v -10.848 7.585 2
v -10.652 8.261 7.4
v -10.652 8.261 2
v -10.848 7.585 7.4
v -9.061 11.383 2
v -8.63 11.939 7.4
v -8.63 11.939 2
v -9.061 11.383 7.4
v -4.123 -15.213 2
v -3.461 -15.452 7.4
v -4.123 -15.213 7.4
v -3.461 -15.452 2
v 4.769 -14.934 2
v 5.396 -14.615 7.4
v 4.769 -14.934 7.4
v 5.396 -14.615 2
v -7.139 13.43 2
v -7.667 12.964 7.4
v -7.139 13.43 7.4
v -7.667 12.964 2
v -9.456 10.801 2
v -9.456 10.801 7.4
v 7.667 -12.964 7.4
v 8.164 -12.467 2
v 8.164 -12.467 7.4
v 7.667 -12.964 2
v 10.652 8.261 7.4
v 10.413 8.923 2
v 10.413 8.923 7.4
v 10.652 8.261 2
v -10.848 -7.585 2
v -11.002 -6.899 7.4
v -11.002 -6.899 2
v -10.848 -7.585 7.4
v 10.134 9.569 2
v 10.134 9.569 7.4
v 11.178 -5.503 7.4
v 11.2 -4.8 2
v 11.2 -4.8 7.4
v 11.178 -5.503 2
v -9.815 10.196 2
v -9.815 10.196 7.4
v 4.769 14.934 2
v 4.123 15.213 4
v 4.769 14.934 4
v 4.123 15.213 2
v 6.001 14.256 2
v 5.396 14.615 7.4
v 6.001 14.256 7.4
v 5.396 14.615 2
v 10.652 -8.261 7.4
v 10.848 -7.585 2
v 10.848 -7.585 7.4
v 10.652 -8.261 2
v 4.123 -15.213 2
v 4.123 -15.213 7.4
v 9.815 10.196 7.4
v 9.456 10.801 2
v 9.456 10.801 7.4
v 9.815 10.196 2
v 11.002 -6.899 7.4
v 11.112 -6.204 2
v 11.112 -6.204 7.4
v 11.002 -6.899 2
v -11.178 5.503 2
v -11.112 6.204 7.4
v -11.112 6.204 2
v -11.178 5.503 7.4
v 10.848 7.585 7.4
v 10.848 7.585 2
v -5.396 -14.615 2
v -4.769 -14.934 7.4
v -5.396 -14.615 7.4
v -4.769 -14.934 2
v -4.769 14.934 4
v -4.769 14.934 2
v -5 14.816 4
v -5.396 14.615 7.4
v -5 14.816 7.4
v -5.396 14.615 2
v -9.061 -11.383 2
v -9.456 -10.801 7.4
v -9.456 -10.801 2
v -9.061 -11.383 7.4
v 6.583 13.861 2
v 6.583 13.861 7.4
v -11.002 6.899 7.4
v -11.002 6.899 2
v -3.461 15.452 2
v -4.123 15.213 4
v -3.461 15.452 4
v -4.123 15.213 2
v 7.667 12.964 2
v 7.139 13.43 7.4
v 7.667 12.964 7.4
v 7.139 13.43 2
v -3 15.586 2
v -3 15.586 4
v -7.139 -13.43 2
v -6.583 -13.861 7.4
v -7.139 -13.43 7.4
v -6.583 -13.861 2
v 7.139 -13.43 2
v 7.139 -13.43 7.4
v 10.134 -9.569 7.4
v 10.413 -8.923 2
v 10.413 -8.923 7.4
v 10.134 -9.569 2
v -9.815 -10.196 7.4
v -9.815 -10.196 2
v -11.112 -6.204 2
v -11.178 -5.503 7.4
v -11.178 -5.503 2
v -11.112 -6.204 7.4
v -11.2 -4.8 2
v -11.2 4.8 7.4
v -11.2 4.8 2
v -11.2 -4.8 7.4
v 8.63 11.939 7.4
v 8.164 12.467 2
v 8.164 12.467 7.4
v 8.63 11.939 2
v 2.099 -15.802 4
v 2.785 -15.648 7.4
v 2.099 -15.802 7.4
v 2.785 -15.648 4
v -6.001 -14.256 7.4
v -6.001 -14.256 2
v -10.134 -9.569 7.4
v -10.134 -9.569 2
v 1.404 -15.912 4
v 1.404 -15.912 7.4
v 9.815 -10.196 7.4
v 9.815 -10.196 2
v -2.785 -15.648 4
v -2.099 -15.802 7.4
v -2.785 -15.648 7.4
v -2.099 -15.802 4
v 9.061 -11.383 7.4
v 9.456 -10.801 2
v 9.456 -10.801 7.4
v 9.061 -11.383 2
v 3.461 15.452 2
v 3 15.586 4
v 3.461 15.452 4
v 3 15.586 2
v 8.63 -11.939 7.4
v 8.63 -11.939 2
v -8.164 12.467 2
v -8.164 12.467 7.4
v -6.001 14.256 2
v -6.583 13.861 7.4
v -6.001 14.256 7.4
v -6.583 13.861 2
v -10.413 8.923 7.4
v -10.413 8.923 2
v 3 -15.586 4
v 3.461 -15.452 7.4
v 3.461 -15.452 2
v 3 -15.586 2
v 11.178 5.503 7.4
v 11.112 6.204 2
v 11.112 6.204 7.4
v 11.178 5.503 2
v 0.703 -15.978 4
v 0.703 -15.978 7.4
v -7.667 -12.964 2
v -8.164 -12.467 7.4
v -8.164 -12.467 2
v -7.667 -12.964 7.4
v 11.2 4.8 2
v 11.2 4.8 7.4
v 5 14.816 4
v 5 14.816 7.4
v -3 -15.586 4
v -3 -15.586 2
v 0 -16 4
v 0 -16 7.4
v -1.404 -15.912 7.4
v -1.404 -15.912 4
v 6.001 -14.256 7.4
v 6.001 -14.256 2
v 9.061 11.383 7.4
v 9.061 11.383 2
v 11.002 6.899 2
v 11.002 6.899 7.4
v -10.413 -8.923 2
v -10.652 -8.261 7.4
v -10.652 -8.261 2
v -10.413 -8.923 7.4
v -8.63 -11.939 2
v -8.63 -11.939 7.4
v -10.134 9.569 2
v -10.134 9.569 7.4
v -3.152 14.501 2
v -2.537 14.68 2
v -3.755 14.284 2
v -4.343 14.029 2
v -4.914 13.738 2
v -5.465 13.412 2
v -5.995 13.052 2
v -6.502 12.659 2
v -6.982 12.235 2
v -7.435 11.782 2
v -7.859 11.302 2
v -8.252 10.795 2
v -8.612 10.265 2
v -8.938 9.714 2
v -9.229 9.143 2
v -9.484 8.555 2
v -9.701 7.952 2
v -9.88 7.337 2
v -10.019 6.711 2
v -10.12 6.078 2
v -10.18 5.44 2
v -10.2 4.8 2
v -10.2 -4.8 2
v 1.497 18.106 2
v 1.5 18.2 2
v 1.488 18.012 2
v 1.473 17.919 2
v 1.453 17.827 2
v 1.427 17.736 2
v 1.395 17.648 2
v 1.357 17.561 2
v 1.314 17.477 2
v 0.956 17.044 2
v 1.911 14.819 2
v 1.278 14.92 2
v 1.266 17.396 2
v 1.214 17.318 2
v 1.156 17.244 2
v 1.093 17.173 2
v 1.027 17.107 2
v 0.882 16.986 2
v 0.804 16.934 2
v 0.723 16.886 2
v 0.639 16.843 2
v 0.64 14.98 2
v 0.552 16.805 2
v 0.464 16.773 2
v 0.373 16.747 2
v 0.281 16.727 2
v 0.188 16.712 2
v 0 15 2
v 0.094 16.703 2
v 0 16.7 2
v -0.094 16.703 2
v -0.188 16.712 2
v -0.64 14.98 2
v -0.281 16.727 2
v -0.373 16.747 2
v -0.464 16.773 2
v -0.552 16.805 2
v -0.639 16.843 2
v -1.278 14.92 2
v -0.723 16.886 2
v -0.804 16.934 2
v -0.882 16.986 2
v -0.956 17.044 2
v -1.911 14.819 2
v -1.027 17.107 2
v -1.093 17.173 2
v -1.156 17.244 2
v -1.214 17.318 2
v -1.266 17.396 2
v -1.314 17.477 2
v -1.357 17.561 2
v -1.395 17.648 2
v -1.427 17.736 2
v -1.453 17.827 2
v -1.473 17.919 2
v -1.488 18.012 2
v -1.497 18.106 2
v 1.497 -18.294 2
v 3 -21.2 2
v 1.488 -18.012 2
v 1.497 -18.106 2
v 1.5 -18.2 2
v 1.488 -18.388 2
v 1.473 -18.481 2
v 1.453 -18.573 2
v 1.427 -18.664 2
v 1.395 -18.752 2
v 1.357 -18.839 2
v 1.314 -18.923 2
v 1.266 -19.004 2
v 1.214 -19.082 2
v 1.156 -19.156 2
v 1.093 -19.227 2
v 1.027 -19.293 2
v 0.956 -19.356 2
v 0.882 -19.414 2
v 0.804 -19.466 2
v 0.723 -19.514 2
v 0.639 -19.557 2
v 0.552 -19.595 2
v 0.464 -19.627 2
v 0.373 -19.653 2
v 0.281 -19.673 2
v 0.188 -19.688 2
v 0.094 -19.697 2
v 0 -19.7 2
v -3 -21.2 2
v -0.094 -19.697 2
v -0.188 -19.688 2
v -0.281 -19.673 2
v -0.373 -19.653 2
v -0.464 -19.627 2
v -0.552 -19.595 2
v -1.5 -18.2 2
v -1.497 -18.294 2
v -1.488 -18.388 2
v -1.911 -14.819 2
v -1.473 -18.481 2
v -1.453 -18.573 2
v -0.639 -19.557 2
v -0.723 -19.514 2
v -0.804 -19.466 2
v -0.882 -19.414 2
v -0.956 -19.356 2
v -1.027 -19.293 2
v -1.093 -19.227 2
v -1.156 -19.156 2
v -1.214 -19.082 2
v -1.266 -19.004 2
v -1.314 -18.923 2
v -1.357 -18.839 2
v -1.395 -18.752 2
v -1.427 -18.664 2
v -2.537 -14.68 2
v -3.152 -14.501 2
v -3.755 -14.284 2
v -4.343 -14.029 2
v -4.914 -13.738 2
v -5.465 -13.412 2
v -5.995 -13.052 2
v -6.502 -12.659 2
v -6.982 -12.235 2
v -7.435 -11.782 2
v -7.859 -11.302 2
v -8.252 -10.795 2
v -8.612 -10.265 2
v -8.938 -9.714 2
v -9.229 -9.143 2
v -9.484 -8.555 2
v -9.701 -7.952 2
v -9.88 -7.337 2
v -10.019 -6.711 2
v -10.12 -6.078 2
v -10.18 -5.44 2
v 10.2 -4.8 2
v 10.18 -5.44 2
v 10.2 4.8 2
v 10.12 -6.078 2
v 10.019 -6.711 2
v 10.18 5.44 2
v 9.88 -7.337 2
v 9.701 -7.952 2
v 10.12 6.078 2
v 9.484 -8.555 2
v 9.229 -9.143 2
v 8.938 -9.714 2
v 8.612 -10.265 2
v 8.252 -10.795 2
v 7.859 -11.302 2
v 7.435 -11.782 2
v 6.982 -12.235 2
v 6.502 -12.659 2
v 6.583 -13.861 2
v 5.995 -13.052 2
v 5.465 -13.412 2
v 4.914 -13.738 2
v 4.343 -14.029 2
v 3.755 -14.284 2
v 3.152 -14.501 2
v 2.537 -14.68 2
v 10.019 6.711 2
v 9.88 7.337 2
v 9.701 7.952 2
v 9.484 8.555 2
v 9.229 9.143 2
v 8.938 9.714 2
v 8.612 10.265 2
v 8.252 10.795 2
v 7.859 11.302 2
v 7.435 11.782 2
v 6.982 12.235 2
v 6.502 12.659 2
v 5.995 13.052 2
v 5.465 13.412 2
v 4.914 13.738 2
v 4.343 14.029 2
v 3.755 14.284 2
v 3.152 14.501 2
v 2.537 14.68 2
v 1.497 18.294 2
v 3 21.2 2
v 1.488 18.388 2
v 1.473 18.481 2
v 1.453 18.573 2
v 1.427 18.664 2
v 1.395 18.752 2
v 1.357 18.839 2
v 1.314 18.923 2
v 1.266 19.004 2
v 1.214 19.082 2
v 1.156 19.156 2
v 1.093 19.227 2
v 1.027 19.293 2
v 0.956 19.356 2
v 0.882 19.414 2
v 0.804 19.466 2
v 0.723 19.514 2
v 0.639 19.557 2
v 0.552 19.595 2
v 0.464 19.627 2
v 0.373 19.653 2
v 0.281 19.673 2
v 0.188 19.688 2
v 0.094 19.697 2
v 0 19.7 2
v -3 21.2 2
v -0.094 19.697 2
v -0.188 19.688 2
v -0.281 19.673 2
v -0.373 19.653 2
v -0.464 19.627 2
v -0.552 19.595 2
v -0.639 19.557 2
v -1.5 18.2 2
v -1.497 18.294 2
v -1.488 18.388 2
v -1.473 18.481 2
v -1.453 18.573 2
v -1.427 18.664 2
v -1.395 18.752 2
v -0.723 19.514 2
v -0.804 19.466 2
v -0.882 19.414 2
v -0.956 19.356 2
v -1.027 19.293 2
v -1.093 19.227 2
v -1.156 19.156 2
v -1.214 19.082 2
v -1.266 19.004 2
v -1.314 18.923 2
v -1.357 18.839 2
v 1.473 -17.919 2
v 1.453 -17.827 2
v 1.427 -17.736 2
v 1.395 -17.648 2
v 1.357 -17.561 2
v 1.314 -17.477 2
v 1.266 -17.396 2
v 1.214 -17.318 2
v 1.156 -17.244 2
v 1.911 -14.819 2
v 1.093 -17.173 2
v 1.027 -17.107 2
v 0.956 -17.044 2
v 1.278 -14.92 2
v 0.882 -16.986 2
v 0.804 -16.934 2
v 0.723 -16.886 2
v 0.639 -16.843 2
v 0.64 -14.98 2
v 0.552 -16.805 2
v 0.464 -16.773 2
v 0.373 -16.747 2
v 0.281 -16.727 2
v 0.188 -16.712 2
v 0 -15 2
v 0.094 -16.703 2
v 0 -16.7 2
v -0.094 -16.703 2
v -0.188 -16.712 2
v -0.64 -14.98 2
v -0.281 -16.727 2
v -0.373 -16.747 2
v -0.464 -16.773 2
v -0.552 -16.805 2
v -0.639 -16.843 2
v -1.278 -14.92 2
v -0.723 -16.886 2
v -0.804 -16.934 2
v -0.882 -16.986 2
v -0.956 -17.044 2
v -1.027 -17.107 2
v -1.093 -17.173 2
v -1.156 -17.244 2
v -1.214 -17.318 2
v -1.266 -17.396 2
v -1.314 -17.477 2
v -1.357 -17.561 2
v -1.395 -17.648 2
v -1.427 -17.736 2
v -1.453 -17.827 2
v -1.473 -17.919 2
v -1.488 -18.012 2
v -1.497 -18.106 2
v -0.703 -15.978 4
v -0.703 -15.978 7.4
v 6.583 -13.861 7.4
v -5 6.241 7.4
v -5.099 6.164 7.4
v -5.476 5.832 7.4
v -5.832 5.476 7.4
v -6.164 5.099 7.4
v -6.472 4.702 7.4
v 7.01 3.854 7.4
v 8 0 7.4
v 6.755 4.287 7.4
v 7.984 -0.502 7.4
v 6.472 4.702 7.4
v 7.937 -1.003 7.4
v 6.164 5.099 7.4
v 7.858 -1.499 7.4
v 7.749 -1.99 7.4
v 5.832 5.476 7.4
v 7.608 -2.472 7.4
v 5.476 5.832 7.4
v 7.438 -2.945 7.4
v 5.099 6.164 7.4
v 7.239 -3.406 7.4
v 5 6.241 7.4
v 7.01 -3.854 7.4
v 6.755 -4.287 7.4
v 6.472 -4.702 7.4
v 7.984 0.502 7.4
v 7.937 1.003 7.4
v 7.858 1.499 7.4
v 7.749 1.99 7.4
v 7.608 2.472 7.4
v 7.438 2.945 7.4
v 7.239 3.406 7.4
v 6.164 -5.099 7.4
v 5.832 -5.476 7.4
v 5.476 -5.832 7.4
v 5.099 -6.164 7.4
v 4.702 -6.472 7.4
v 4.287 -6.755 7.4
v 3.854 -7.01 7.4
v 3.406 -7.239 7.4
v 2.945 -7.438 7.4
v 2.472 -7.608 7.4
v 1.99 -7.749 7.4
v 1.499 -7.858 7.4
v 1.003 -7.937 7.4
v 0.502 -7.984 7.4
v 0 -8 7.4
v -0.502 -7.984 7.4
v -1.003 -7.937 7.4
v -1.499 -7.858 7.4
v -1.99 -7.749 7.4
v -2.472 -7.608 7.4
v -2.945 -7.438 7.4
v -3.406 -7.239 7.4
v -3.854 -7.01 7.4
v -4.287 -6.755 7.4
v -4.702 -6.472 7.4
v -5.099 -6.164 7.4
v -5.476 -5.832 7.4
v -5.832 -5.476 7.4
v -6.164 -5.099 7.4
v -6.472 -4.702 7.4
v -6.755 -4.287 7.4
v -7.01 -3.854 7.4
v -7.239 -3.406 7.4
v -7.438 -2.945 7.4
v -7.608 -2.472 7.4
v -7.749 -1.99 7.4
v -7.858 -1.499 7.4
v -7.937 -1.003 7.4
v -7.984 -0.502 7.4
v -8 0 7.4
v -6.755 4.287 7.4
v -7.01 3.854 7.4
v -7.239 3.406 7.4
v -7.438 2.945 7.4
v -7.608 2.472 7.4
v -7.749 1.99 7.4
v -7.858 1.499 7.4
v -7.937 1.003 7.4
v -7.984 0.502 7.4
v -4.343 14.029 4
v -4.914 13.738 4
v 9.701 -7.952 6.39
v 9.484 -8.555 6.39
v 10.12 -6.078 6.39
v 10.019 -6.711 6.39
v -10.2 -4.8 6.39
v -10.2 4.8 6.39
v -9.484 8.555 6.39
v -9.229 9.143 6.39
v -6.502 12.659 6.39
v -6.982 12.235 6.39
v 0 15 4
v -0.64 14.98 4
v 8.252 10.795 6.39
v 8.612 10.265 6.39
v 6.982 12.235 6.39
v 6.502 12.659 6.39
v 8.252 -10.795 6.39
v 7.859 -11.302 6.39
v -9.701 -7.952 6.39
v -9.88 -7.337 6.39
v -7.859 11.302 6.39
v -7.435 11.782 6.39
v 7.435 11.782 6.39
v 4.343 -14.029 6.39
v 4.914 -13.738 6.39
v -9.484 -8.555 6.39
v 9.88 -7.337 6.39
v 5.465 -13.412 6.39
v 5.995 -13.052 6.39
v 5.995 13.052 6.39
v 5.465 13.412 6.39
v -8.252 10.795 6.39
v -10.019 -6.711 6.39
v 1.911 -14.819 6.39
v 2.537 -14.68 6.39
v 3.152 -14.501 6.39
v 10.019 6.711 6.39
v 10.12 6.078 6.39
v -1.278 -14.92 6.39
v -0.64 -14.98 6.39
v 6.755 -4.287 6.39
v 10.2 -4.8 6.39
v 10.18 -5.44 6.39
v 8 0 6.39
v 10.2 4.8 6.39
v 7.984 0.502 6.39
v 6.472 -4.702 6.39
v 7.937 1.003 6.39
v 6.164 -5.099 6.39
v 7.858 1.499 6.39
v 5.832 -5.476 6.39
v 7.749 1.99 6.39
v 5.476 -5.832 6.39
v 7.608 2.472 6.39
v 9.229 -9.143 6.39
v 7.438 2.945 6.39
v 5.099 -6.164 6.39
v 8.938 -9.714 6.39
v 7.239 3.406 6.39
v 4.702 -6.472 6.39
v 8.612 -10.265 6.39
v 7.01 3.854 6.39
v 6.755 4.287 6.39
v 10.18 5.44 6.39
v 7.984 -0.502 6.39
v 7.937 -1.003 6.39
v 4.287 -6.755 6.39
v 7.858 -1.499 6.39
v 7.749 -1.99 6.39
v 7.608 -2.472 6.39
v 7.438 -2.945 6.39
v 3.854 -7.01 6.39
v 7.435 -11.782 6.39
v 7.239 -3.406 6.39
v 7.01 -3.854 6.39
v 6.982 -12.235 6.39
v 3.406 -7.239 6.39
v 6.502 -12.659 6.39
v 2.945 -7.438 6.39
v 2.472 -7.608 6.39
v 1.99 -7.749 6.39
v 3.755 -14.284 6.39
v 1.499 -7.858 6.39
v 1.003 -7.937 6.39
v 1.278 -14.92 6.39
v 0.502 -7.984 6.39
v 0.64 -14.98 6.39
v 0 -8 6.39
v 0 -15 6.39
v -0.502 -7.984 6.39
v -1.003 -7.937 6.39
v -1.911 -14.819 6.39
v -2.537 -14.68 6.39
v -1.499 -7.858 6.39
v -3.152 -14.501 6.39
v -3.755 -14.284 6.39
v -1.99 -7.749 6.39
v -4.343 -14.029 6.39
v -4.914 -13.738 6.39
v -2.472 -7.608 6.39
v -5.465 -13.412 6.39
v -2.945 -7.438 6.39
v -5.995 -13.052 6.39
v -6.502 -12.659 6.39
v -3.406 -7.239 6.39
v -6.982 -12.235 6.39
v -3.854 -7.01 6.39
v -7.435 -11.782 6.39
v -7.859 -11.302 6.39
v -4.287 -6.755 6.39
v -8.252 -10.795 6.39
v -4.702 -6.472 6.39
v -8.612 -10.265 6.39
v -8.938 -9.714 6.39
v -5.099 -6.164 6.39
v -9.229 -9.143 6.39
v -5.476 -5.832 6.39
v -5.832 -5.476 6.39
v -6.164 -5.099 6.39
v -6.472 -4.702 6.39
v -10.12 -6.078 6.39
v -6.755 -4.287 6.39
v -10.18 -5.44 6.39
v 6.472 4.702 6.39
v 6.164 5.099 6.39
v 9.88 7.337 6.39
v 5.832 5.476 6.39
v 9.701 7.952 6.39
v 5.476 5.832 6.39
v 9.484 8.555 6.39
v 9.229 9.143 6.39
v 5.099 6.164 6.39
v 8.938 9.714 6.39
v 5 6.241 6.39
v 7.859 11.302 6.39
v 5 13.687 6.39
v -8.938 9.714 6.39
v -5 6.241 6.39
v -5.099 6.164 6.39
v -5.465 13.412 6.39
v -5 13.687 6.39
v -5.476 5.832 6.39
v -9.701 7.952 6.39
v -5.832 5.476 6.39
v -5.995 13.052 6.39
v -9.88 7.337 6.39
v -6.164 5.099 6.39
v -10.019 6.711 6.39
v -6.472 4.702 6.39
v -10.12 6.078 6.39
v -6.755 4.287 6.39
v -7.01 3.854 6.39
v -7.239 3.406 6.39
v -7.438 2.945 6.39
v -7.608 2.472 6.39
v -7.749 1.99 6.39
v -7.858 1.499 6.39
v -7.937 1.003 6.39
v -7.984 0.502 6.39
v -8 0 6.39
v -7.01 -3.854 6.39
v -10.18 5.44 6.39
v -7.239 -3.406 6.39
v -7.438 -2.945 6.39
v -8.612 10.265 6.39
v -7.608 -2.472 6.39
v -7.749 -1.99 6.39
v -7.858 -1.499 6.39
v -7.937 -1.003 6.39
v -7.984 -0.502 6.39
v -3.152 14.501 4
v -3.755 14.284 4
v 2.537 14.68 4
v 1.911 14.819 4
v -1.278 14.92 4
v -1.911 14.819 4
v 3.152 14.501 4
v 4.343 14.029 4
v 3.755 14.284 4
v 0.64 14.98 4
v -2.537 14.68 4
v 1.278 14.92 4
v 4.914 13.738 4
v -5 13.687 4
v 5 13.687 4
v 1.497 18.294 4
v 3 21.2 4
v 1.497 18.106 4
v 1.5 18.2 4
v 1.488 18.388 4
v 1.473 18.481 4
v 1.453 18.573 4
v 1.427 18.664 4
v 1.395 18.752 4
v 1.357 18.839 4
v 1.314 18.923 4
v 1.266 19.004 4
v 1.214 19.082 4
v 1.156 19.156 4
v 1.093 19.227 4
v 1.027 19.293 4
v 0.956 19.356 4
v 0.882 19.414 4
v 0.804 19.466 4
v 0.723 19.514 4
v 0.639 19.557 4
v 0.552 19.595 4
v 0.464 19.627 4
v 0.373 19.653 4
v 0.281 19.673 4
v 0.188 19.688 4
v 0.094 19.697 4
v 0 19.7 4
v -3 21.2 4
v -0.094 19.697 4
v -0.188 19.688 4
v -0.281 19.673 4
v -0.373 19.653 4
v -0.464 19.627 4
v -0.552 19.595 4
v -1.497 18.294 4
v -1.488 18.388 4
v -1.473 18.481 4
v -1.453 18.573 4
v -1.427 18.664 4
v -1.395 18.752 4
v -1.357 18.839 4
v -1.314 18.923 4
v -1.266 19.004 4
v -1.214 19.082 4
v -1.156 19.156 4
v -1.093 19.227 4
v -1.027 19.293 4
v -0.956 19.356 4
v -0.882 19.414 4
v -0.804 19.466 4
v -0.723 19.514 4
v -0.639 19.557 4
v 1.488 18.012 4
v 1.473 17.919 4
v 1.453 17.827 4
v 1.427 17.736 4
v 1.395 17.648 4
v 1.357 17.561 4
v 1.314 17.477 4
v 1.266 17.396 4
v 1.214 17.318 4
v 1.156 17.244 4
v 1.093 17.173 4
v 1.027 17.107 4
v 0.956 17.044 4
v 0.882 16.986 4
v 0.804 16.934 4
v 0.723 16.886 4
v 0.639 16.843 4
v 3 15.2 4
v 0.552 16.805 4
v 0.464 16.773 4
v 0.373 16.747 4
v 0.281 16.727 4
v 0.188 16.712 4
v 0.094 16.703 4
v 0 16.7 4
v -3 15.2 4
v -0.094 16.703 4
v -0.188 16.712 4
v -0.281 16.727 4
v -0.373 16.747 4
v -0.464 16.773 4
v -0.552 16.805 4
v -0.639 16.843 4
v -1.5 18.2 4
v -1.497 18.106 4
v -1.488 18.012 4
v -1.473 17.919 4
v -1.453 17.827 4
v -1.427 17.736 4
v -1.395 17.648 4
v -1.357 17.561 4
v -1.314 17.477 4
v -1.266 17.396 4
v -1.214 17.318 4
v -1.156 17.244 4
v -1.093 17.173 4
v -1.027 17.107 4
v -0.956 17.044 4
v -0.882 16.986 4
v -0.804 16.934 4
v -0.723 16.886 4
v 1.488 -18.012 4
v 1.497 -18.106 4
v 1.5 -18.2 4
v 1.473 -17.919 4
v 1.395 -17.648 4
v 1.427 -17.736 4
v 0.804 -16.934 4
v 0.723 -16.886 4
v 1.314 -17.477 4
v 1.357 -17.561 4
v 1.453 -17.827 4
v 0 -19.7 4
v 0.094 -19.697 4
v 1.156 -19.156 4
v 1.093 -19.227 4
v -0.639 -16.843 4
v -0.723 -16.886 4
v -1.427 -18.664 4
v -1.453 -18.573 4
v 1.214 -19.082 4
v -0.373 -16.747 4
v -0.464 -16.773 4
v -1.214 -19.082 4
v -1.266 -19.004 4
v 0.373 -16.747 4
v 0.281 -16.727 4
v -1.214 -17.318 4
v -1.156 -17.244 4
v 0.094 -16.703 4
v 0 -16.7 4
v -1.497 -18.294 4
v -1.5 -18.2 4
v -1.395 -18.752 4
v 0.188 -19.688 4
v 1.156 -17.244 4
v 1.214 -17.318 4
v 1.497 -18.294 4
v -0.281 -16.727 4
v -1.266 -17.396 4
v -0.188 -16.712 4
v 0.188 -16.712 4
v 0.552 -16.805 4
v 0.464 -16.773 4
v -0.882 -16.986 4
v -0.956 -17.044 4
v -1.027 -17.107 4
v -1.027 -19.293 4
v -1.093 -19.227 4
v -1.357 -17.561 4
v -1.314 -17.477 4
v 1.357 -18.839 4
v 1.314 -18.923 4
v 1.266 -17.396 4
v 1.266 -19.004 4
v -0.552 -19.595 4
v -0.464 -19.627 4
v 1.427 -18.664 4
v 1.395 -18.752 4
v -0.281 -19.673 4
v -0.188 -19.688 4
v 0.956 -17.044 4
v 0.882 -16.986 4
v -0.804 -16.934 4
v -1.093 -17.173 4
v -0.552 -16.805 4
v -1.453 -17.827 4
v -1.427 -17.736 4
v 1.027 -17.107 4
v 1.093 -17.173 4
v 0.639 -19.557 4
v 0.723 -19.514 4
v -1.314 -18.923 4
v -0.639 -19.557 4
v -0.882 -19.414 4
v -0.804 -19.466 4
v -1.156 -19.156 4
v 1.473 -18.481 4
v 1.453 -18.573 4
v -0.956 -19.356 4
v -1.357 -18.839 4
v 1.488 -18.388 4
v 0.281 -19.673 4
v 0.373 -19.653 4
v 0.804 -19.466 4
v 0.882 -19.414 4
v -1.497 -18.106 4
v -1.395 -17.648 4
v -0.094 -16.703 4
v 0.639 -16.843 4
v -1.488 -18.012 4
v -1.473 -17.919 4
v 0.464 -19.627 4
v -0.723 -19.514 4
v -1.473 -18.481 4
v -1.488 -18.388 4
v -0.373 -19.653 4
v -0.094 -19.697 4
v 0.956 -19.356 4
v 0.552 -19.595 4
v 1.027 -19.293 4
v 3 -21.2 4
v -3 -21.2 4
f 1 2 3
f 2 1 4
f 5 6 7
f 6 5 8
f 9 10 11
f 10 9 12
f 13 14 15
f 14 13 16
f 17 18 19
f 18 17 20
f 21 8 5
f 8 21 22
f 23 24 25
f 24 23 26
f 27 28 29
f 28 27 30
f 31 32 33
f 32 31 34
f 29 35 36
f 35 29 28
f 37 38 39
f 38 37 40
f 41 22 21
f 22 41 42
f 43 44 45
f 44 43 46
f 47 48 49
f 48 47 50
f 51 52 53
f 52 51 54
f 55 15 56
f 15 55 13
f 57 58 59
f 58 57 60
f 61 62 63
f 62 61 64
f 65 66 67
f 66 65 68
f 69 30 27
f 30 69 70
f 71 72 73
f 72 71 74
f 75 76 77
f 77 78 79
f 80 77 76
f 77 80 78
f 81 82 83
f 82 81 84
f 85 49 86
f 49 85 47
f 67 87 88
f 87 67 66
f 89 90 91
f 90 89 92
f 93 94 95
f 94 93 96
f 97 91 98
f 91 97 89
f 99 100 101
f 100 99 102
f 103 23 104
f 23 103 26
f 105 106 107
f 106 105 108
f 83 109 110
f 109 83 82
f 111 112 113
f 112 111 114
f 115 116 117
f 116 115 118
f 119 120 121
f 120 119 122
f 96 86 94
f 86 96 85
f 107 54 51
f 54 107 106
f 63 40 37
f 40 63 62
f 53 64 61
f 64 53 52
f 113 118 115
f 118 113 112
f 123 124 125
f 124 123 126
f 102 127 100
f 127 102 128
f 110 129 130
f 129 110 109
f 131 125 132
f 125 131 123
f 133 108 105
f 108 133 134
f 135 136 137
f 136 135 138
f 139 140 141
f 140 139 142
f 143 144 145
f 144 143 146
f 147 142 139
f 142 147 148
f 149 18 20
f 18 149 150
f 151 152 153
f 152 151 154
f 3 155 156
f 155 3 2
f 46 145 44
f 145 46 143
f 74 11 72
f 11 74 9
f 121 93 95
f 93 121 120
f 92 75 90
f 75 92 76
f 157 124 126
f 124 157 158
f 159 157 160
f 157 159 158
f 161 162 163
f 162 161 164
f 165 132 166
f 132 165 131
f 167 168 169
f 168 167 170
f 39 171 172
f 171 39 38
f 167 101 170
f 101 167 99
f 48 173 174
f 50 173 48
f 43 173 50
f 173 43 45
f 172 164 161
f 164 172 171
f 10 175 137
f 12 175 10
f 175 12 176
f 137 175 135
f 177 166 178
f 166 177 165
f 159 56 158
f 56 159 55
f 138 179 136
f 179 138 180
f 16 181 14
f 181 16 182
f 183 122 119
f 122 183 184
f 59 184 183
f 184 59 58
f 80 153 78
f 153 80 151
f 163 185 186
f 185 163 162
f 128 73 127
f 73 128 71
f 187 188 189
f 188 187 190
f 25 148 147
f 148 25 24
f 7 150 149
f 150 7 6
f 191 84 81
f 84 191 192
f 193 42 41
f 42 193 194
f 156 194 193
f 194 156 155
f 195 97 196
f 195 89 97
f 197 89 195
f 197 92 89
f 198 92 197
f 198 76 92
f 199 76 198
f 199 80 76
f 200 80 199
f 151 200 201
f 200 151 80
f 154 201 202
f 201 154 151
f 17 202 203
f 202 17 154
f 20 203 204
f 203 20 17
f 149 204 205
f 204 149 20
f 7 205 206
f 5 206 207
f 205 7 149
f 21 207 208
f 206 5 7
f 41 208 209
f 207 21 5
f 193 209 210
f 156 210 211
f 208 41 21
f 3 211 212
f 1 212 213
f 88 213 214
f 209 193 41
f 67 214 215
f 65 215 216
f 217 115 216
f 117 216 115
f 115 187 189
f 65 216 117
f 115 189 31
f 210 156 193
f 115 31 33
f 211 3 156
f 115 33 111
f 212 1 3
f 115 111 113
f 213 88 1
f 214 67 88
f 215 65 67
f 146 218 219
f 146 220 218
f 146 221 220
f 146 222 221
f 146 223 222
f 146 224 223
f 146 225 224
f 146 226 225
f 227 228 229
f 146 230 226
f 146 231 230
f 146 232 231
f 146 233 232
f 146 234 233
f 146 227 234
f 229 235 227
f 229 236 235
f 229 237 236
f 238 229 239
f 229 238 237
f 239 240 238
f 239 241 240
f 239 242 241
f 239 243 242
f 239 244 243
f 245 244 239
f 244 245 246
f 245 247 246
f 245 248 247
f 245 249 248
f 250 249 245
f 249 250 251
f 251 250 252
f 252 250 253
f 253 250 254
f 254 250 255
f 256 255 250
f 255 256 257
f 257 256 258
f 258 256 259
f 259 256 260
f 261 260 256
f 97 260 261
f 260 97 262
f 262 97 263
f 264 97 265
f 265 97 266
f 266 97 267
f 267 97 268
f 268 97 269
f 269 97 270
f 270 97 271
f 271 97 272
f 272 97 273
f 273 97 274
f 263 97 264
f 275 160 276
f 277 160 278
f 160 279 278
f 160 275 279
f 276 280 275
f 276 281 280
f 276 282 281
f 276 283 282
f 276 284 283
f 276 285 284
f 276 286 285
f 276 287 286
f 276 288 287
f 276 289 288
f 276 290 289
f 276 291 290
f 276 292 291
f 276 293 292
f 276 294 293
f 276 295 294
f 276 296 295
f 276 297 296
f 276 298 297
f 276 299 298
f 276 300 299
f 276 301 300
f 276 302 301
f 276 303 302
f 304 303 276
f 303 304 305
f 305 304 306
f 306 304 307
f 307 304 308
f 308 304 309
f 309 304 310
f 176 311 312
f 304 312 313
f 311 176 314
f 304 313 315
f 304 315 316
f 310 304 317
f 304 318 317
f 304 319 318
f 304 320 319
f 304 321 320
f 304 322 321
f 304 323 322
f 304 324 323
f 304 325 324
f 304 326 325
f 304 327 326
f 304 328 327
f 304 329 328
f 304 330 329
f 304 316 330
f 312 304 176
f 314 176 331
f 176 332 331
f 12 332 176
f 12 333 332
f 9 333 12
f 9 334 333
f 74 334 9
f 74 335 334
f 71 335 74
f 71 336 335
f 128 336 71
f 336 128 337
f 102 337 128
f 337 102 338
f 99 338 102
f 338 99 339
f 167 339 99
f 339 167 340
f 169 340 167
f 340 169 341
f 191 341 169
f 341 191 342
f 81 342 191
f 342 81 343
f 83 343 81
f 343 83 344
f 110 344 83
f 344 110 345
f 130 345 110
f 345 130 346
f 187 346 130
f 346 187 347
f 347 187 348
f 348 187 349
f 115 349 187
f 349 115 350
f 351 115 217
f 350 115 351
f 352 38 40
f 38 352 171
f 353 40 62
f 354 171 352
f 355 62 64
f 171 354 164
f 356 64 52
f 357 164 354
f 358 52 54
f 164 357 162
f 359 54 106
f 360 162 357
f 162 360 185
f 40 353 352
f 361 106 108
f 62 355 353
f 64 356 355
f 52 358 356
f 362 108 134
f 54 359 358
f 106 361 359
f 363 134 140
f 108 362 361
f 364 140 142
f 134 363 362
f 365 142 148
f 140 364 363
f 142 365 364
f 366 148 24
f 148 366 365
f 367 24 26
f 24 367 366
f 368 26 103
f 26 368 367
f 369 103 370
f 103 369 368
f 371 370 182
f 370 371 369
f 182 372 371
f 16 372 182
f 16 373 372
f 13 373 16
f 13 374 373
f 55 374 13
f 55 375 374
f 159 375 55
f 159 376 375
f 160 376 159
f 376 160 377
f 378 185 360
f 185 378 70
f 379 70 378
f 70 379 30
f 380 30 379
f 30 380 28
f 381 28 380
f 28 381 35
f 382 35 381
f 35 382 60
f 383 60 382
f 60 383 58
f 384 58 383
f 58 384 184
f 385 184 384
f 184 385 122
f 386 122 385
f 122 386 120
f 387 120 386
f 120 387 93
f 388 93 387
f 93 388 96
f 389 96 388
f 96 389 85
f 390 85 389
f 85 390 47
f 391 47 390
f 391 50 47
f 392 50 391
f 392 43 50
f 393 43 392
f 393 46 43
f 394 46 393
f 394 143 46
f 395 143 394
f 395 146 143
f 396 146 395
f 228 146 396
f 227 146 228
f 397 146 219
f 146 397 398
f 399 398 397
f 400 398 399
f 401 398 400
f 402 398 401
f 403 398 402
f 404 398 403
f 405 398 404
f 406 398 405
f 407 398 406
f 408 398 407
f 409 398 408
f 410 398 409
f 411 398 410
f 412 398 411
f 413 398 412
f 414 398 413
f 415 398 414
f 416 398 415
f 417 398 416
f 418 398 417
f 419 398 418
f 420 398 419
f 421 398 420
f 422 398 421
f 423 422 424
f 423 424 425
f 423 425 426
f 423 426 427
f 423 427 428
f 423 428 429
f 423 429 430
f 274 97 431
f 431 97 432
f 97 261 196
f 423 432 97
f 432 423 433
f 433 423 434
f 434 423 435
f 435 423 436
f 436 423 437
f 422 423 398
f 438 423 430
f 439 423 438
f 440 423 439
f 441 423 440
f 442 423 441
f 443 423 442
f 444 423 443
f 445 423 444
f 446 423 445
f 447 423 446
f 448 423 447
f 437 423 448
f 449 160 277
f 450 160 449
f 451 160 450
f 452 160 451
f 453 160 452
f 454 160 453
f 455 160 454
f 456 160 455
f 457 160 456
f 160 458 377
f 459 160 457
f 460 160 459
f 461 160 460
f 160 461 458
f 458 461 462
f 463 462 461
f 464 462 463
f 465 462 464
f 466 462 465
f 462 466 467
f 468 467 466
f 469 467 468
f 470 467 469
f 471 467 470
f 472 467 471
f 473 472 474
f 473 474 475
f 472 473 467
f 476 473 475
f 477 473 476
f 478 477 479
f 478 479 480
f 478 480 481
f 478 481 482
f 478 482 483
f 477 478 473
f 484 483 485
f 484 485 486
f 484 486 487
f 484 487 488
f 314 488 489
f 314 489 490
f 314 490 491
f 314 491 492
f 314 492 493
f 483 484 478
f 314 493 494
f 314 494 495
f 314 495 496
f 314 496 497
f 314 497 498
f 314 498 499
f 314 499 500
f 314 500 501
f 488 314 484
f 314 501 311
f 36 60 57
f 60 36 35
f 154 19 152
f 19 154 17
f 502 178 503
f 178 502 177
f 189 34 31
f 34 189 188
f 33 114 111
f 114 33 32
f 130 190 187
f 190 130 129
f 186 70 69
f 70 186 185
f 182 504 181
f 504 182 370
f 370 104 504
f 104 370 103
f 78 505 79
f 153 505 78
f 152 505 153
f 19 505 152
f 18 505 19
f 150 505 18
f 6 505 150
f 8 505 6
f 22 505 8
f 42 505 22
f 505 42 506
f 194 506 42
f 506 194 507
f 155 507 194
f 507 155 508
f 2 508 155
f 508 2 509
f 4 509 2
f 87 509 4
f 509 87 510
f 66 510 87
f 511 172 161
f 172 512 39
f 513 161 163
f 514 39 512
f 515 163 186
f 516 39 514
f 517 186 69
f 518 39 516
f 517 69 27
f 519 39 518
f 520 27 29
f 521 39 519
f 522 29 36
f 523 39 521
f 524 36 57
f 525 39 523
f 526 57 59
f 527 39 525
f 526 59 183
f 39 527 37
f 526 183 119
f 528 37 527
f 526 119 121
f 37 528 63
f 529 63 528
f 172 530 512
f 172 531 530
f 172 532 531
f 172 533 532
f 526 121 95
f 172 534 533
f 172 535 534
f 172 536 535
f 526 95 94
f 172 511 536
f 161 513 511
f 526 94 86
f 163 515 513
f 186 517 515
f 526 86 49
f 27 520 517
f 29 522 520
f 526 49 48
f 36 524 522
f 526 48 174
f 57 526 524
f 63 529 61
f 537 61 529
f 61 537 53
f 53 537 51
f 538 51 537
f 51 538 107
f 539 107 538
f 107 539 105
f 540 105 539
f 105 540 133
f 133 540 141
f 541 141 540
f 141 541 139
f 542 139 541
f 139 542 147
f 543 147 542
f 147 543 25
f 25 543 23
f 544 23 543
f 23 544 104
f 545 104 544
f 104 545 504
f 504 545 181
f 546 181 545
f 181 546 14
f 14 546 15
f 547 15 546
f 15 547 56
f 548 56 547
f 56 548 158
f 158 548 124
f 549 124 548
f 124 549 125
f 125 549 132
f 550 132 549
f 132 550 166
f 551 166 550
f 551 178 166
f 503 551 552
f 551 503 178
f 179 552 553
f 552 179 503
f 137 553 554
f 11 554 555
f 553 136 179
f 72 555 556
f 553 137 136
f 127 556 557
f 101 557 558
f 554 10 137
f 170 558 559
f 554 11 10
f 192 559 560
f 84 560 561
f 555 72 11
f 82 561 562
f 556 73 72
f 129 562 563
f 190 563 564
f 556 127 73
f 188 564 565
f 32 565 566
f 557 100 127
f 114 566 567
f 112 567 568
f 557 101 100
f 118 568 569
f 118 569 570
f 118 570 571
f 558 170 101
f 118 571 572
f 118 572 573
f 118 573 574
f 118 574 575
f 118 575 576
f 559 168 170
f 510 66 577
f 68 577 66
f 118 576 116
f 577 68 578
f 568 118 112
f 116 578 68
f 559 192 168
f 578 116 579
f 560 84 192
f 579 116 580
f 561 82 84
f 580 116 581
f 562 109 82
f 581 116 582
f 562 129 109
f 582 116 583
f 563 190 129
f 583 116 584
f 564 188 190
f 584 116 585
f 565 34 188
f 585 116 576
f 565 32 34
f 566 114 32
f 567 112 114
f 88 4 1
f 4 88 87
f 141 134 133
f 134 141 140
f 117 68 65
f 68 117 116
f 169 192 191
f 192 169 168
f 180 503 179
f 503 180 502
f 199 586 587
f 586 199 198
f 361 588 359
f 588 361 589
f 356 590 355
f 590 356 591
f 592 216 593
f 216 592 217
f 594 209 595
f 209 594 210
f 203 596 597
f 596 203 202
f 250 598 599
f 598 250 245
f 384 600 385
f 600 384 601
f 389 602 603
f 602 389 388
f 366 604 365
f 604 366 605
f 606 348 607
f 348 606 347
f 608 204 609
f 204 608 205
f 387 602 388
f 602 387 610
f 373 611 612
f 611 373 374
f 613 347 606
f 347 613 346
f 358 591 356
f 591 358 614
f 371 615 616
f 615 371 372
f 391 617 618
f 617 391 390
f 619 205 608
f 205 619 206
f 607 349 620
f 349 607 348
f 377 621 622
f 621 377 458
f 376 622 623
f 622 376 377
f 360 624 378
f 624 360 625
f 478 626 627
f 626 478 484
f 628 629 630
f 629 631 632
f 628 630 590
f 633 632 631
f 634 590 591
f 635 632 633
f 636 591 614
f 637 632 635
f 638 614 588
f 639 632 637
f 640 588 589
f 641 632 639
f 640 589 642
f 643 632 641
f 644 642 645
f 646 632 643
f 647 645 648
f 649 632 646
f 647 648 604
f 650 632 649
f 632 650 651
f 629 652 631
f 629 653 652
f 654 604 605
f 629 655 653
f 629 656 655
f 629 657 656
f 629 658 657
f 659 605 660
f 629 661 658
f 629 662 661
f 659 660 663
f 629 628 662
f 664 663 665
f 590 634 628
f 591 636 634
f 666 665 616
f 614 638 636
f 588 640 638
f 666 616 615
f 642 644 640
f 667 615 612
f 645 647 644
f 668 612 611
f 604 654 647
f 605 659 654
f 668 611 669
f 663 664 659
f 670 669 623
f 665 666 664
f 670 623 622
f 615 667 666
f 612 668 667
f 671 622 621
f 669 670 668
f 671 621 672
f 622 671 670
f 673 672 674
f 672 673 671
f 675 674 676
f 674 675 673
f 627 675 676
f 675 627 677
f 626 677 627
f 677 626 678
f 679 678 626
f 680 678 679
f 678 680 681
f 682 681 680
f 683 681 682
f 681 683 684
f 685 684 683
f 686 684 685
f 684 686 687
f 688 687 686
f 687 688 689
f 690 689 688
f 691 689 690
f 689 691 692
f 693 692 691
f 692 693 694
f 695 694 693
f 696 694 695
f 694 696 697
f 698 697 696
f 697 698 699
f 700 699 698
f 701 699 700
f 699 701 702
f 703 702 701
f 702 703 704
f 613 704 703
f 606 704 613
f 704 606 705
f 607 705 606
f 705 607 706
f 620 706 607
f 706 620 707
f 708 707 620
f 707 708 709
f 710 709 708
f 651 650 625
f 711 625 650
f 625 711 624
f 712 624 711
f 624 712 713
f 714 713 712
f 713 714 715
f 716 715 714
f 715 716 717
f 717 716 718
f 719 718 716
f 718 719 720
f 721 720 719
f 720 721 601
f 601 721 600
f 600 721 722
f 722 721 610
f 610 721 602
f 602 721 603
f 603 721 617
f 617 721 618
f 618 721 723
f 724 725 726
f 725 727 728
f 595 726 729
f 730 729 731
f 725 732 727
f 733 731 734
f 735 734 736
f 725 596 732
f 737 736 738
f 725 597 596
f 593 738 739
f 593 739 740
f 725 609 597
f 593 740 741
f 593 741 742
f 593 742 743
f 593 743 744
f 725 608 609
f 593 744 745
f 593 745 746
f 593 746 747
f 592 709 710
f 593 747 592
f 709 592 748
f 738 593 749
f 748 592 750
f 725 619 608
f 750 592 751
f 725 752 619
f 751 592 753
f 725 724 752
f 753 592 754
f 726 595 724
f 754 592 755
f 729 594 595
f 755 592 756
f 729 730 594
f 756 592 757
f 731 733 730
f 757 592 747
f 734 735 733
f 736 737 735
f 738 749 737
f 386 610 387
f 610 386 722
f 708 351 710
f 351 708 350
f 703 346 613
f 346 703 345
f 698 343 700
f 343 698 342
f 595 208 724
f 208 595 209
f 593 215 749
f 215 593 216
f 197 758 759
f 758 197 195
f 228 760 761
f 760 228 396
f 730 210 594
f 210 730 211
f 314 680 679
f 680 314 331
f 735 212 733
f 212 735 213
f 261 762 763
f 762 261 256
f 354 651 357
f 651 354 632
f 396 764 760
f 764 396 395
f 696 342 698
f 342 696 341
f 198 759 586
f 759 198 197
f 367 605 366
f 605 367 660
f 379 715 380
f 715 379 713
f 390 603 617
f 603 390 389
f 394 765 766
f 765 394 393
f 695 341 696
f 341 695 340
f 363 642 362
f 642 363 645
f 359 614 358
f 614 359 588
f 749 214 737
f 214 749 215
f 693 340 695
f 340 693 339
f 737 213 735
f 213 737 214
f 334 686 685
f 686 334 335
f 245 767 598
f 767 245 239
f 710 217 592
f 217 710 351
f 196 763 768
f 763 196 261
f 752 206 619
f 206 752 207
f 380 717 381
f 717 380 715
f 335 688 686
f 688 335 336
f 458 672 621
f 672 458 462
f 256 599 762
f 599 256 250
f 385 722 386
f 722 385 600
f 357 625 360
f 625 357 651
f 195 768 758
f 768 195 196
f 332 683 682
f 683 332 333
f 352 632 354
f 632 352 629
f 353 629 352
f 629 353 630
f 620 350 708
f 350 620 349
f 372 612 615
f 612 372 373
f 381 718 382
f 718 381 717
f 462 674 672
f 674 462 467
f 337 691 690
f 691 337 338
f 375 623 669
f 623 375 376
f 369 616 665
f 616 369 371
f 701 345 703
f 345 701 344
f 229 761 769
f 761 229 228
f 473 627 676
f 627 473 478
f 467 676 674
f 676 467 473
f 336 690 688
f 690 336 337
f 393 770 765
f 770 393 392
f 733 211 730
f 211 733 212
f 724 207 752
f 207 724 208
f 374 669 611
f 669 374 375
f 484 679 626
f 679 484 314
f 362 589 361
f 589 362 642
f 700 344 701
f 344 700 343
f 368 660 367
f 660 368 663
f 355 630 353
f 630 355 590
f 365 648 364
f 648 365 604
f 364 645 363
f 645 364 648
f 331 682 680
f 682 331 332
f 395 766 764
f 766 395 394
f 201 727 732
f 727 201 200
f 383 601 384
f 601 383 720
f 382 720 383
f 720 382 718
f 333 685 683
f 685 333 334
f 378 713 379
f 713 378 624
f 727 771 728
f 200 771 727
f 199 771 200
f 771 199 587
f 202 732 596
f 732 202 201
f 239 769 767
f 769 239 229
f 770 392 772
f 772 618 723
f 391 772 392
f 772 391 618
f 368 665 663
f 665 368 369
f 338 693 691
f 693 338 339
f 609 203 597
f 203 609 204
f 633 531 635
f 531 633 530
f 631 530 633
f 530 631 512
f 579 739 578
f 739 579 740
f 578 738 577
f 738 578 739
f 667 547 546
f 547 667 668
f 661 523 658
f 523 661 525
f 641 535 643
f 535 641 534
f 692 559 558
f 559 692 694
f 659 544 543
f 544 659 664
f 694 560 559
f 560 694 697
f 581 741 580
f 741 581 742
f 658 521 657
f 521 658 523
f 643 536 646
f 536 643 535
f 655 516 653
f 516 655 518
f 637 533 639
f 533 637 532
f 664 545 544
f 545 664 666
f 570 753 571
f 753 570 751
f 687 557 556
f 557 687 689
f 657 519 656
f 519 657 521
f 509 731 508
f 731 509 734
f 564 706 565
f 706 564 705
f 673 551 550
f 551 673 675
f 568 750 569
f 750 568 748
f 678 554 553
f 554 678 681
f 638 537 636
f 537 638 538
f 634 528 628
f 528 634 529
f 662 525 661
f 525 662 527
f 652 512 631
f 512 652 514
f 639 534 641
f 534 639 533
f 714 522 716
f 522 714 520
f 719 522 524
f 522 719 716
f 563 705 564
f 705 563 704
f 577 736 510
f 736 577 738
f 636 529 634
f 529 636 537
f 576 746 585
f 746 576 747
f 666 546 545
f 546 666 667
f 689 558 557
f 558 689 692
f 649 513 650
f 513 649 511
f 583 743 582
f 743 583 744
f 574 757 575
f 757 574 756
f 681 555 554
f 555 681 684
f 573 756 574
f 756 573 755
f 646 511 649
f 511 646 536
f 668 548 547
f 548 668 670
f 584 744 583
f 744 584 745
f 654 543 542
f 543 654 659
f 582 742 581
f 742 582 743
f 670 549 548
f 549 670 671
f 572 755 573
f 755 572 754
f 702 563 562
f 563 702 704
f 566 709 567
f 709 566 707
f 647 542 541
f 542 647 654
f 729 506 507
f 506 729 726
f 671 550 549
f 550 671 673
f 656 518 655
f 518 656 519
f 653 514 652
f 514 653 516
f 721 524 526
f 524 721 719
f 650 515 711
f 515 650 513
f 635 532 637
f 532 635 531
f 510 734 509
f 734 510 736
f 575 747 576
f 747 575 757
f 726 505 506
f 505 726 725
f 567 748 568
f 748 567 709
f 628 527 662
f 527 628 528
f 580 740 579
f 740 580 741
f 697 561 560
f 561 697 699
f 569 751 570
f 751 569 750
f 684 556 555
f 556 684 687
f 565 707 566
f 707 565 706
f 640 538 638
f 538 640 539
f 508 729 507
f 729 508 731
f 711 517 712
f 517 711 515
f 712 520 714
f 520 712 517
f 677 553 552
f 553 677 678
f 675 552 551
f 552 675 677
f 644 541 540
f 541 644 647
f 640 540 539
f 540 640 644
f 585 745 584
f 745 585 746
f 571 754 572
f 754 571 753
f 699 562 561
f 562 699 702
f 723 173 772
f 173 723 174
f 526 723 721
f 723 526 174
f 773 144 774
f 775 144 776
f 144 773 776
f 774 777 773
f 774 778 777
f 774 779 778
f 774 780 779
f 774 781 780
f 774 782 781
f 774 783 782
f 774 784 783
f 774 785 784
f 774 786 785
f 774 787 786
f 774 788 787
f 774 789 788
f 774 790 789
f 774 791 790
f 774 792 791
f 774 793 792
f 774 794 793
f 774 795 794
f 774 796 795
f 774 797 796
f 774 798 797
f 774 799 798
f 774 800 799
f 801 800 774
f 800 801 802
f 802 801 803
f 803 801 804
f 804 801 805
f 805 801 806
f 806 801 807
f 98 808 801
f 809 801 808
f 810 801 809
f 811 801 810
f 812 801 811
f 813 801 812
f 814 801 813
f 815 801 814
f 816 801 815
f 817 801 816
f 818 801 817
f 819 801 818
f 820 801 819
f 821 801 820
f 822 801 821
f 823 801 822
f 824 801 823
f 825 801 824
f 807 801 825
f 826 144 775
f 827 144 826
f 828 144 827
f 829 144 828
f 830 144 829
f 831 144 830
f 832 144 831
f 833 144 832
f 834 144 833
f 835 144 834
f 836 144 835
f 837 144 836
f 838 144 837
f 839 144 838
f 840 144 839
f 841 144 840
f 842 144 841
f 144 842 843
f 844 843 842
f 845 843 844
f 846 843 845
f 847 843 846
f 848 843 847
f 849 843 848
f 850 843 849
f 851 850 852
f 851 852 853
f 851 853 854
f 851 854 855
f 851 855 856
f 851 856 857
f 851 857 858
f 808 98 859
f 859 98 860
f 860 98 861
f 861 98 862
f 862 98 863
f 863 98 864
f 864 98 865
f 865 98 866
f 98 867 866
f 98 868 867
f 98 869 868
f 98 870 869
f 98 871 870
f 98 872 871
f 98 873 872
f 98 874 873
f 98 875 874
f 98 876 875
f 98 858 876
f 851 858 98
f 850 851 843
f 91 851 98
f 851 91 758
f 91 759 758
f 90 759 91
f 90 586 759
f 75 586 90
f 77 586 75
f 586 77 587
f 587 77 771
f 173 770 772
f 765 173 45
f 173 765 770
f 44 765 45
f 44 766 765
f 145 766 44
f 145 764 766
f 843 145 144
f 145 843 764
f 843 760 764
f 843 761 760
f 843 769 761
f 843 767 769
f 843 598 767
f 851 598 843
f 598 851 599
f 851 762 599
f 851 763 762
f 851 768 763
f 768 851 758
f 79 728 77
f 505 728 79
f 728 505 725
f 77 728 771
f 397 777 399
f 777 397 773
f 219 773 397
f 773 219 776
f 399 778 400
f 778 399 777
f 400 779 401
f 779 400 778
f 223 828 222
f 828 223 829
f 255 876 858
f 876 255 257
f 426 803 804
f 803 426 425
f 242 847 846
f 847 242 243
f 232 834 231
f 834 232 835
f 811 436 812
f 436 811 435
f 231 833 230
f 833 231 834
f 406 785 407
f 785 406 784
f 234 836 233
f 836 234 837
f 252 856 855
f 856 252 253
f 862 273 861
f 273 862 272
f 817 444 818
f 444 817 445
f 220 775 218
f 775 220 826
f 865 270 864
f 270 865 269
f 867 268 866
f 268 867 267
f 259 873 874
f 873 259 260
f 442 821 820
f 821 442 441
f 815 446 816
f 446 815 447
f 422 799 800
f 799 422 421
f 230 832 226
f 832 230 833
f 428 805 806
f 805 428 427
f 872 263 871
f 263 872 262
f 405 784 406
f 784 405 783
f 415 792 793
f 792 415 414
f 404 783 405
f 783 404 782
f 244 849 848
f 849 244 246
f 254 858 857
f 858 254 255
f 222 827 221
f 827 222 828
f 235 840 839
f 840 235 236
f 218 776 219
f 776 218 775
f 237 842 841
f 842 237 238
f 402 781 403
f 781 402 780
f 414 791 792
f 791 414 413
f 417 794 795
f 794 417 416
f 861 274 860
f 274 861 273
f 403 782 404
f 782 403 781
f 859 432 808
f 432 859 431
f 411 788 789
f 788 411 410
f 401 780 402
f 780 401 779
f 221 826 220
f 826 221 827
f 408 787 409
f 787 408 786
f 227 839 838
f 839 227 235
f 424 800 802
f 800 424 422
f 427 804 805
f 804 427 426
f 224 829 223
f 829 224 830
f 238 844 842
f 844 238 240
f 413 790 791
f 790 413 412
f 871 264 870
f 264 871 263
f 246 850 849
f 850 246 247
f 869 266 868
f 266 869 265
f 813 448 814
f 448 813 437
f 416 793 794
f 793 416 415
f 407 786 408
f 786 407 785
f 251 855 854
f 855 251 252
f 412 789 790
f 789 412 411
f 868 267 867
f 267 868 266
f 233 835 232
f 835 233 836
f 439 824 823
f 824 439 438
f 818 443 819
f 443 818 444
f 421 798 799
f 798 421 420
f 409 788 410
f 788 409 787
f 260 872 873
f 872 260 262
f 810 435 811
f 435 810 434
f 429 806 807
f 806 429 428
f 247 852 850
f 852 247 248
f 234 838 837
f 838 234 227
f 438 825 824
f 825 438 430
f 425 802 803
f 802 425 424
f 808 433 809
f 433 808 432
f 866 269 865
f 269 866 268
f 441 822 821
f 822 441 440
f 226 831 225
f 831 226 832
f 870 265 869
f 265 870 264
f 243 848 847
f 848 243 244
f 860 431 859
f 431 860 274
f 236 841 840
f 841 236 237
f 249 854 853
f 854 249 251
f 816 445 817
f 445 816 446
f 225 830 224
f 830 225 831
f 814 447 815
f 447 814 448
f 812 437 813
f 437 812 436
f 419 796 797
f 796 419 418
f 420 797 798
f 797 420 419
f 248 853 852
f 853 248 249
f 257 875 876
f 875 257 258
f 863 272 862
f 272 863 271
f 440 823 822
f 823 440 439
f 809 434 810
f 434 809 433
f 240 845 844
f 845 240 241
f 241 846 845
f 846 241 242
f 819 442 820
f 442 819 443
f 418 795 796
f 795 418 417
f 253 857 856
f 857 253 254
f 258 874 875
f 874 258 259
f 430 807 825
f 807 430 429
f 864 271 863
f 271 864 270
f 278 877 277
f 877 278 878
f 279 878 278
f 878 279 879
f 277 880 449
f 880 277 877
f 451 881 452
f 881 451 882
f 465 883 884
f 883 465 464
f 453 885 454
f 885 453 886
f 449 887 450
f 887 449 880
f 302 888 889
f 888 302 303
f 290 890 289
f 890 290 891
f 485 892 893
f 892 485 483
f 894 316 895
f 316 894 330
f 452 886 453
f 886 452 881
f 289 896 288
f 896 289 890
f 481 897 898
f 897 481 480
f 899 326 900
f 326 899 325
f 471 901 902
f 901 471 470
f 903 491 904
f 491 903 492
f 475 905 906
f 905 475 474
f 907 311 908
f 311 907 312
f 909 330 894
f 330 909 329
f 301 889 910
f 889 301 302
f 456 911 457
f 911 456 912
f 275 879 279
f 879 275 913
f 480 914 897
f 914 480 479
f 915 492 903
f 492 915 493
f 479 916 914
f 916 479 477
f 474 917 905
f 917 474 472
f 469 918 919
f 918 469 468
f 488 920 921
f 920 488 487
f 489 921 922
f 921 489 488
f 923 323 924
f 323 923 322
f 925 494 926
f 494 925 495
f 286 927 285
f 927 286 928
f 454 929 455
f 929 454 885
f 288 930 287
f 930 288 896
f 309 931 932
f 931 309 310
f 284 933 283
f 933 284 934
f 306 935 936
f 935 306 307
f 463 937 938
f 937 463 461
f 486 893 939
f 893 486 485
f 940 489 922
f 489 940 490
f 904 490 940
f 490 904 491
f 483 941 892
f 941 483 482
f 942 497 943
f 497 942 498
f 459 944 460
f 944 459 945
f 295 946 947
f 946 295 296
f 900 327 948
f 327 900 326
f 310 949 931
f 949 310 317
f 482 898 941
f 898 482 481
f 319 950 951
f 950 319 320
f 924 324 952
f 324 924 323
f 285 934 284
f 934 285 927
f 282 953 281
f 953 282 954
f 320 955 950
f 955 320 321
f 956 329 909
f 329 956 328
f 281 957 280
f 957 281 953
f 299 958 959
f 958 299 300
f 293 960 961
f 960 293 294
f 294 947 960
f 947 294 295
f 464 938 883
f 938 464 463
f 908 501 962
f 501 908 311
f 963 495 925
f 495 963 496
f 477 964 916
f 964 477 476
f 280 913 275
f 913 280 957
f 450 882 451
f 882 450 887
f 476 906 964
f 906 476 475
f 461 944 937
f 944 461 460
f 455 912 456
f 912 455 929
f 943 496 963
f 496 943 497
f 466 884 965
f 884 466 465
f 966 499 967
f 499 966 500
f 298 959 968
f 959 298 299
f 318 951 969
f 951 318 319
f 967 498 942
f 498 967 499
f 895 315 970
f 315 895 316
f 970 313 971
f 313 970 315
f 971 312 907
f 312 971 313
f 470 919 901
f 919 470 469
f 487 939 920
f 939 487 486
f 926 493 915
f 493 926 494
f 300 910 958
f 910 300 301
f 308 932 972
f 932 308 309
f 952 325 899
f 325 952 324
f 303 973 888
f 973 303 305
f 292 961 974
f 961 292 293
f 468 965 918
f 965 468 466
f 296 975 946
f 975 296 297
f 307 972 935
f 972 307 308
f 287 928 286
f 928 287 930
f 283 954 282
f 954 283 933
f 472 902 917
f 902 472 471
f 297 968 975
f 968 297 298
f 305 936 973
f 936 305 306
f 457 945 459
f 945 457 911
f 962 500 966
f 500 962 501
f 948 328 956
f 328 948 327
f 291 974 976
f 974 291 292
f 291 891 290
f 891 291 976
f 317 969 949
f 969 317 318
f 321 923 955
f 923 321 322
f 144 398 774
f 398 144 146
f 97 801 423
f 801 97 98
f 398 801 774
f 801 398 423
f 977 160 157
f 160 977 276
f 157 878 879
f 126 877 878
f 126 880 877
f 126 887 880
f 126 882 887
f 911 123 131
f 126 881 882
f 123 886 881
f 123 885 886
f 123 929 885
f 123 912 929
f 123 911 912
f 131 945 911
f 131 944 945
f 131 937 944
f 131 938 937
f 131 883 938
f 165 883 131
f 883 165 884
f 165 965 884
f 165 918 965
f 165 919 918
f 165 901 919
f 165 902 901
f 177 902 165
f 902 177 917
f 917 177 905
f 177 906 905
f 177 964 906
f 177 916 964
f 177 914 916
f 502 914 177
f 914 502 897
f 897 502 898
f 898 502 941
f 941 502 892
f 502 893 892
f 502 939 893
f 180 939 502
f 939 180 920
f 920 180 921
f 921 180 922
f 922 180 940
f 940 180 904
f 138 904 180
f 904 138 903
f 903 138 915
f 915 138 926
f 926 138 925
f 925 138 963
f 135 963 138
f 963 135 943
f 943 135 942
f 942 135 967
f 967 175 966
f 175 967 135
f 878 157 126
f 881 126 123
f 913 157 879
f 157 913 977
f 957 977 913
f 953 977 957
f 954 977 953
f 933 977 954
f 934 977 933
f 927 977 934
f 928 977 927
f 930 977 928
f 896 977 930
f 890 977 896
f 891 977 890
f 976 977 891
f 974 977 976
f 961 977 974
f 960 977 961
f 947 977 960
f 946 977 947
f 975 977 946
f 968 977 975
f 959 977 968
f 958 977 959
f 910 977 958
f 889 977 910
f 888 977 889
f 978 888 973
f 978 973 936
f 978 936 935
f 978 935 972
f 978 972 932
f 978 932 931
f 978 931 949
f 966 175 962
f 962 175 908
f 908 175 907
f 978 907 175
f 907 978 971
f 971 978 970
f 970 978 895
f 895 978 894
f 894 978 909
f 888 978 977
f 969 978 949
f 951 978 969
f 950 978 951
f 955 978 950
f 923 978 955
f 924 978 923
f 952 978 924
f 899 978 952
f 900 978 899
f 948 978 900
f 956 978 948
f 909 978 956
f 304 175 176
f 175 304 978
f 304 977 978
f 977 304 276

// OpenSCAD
$fn = 100;

panel_width = 50;
panel_length = 50;
panel_thickness = 2.0;

tolerance = 0.4;

speaker_diameter = 20;
speaker_circle_distance = 4.8;
speaker_thickness = 2.4;
speaker_mount_circle_distance = speaker_circle_distance;
speaker_mount_wall_thickness = 1.0;

tab_width = 6;
tab_length = 6;
tab_hole_diameter = 3.0;
tab_hole_offset = speaker_diameter/2 + speaker_circle_distance + tolerance + tab_length/2;
tab_hole_height = 10;
tab_height = 2;

module panel() {
    translate([-panel_width/2, -panel_length/2, 0])
    cube([panel_width, panel_length, panel_thickness]);
}

module speaker() {
    rotate([0, 0, 0])
    translate([0, 0, panel_thickness + 0.2])
    color("red", 1)
    import("parts/3923 Mini Oval Speaker.stl");
}

module speaker_mount_holes() {
    translate([0, tab_hole_offset, -tab_hole_height/2])
    color("blue")
    cylinder(h = tab_hole_height, d = tab_hole_diameter);

    translate([0, -tab_hole_offset, -tab_hole_height/2])
    color("blue")
    cylinder(h = tab_hole_height, d = tab_hole_diameter);        
}

module speaker_mount() {
    difference()
    {
        color("purple")
        hull() {
            translate([0, speaker_mount_circle_distance, panel_thickness])
            cylinder(h = speaker_thickness + panel_thickness + speaker_mount_wall_thickness, d = speaker_diameter + (speaker_mount_wall_thickness*2) + tolerance);

            translate([0, -speaker_mount_circle_distance, panel_thickness])
            cylinder(h = speaker_thickness + panel_thickness + speaker_mount_wall_thickness, d = speaker_diameter + (speaker_mount_wall_thickness*2) + tolerance);
        }


    color("purple")
        hull() {
            translate([0, speaker_mount_circle_distance, panel_thickness - 0.01])
            cylinder(h = speaker_thickness + panel_thickness, d = speaker_diameter + tolerance);

            translate([0, -speaker_mount_circle_distance, panel_thickness - 0.01])
            cylinder(h = speaker_thickness + panel_thickness, d = speaker_diameter + tolerance);
        }

        color("orange")
        translate([0, 0, panel_thickness + 0.01])
        cylinder(h = speaker_thickness + panel_thickness + speaker_mount_wall_thickness, d = 16);

        {
            wire_cutout_width = 10;
            wire_cutout_length = 20;

            translate([-wire_cutout_width/2, 0, 4])
            color("orange")
            cube([wire_cutout_width, wire_cutout_length, 6]);
        }
    }

    difference()
    {
        translate([-tab_width/2, speaker_diameter/2 + speaker_circle_distance + tolerance, panel_thickness])
        color("green")
        cube([tab_width, tab_length, tab_height]);

        speaker_mount_holes();
    }

    difference()
    {
        translate([-tab_width/2, -speaker_diameter/2 - speaker_circle_distance - tab_length - tolerance, panel_thickness])
        color("green")
        cube([tab_width, tab_length, tab_height]);

        speaker_mount_holes();
    }
}

// difference()
// {
//     panel();
//     speaker_mount_holes();
// }


speaker_mount();
// speaker();

// speaker_mount_holes();
